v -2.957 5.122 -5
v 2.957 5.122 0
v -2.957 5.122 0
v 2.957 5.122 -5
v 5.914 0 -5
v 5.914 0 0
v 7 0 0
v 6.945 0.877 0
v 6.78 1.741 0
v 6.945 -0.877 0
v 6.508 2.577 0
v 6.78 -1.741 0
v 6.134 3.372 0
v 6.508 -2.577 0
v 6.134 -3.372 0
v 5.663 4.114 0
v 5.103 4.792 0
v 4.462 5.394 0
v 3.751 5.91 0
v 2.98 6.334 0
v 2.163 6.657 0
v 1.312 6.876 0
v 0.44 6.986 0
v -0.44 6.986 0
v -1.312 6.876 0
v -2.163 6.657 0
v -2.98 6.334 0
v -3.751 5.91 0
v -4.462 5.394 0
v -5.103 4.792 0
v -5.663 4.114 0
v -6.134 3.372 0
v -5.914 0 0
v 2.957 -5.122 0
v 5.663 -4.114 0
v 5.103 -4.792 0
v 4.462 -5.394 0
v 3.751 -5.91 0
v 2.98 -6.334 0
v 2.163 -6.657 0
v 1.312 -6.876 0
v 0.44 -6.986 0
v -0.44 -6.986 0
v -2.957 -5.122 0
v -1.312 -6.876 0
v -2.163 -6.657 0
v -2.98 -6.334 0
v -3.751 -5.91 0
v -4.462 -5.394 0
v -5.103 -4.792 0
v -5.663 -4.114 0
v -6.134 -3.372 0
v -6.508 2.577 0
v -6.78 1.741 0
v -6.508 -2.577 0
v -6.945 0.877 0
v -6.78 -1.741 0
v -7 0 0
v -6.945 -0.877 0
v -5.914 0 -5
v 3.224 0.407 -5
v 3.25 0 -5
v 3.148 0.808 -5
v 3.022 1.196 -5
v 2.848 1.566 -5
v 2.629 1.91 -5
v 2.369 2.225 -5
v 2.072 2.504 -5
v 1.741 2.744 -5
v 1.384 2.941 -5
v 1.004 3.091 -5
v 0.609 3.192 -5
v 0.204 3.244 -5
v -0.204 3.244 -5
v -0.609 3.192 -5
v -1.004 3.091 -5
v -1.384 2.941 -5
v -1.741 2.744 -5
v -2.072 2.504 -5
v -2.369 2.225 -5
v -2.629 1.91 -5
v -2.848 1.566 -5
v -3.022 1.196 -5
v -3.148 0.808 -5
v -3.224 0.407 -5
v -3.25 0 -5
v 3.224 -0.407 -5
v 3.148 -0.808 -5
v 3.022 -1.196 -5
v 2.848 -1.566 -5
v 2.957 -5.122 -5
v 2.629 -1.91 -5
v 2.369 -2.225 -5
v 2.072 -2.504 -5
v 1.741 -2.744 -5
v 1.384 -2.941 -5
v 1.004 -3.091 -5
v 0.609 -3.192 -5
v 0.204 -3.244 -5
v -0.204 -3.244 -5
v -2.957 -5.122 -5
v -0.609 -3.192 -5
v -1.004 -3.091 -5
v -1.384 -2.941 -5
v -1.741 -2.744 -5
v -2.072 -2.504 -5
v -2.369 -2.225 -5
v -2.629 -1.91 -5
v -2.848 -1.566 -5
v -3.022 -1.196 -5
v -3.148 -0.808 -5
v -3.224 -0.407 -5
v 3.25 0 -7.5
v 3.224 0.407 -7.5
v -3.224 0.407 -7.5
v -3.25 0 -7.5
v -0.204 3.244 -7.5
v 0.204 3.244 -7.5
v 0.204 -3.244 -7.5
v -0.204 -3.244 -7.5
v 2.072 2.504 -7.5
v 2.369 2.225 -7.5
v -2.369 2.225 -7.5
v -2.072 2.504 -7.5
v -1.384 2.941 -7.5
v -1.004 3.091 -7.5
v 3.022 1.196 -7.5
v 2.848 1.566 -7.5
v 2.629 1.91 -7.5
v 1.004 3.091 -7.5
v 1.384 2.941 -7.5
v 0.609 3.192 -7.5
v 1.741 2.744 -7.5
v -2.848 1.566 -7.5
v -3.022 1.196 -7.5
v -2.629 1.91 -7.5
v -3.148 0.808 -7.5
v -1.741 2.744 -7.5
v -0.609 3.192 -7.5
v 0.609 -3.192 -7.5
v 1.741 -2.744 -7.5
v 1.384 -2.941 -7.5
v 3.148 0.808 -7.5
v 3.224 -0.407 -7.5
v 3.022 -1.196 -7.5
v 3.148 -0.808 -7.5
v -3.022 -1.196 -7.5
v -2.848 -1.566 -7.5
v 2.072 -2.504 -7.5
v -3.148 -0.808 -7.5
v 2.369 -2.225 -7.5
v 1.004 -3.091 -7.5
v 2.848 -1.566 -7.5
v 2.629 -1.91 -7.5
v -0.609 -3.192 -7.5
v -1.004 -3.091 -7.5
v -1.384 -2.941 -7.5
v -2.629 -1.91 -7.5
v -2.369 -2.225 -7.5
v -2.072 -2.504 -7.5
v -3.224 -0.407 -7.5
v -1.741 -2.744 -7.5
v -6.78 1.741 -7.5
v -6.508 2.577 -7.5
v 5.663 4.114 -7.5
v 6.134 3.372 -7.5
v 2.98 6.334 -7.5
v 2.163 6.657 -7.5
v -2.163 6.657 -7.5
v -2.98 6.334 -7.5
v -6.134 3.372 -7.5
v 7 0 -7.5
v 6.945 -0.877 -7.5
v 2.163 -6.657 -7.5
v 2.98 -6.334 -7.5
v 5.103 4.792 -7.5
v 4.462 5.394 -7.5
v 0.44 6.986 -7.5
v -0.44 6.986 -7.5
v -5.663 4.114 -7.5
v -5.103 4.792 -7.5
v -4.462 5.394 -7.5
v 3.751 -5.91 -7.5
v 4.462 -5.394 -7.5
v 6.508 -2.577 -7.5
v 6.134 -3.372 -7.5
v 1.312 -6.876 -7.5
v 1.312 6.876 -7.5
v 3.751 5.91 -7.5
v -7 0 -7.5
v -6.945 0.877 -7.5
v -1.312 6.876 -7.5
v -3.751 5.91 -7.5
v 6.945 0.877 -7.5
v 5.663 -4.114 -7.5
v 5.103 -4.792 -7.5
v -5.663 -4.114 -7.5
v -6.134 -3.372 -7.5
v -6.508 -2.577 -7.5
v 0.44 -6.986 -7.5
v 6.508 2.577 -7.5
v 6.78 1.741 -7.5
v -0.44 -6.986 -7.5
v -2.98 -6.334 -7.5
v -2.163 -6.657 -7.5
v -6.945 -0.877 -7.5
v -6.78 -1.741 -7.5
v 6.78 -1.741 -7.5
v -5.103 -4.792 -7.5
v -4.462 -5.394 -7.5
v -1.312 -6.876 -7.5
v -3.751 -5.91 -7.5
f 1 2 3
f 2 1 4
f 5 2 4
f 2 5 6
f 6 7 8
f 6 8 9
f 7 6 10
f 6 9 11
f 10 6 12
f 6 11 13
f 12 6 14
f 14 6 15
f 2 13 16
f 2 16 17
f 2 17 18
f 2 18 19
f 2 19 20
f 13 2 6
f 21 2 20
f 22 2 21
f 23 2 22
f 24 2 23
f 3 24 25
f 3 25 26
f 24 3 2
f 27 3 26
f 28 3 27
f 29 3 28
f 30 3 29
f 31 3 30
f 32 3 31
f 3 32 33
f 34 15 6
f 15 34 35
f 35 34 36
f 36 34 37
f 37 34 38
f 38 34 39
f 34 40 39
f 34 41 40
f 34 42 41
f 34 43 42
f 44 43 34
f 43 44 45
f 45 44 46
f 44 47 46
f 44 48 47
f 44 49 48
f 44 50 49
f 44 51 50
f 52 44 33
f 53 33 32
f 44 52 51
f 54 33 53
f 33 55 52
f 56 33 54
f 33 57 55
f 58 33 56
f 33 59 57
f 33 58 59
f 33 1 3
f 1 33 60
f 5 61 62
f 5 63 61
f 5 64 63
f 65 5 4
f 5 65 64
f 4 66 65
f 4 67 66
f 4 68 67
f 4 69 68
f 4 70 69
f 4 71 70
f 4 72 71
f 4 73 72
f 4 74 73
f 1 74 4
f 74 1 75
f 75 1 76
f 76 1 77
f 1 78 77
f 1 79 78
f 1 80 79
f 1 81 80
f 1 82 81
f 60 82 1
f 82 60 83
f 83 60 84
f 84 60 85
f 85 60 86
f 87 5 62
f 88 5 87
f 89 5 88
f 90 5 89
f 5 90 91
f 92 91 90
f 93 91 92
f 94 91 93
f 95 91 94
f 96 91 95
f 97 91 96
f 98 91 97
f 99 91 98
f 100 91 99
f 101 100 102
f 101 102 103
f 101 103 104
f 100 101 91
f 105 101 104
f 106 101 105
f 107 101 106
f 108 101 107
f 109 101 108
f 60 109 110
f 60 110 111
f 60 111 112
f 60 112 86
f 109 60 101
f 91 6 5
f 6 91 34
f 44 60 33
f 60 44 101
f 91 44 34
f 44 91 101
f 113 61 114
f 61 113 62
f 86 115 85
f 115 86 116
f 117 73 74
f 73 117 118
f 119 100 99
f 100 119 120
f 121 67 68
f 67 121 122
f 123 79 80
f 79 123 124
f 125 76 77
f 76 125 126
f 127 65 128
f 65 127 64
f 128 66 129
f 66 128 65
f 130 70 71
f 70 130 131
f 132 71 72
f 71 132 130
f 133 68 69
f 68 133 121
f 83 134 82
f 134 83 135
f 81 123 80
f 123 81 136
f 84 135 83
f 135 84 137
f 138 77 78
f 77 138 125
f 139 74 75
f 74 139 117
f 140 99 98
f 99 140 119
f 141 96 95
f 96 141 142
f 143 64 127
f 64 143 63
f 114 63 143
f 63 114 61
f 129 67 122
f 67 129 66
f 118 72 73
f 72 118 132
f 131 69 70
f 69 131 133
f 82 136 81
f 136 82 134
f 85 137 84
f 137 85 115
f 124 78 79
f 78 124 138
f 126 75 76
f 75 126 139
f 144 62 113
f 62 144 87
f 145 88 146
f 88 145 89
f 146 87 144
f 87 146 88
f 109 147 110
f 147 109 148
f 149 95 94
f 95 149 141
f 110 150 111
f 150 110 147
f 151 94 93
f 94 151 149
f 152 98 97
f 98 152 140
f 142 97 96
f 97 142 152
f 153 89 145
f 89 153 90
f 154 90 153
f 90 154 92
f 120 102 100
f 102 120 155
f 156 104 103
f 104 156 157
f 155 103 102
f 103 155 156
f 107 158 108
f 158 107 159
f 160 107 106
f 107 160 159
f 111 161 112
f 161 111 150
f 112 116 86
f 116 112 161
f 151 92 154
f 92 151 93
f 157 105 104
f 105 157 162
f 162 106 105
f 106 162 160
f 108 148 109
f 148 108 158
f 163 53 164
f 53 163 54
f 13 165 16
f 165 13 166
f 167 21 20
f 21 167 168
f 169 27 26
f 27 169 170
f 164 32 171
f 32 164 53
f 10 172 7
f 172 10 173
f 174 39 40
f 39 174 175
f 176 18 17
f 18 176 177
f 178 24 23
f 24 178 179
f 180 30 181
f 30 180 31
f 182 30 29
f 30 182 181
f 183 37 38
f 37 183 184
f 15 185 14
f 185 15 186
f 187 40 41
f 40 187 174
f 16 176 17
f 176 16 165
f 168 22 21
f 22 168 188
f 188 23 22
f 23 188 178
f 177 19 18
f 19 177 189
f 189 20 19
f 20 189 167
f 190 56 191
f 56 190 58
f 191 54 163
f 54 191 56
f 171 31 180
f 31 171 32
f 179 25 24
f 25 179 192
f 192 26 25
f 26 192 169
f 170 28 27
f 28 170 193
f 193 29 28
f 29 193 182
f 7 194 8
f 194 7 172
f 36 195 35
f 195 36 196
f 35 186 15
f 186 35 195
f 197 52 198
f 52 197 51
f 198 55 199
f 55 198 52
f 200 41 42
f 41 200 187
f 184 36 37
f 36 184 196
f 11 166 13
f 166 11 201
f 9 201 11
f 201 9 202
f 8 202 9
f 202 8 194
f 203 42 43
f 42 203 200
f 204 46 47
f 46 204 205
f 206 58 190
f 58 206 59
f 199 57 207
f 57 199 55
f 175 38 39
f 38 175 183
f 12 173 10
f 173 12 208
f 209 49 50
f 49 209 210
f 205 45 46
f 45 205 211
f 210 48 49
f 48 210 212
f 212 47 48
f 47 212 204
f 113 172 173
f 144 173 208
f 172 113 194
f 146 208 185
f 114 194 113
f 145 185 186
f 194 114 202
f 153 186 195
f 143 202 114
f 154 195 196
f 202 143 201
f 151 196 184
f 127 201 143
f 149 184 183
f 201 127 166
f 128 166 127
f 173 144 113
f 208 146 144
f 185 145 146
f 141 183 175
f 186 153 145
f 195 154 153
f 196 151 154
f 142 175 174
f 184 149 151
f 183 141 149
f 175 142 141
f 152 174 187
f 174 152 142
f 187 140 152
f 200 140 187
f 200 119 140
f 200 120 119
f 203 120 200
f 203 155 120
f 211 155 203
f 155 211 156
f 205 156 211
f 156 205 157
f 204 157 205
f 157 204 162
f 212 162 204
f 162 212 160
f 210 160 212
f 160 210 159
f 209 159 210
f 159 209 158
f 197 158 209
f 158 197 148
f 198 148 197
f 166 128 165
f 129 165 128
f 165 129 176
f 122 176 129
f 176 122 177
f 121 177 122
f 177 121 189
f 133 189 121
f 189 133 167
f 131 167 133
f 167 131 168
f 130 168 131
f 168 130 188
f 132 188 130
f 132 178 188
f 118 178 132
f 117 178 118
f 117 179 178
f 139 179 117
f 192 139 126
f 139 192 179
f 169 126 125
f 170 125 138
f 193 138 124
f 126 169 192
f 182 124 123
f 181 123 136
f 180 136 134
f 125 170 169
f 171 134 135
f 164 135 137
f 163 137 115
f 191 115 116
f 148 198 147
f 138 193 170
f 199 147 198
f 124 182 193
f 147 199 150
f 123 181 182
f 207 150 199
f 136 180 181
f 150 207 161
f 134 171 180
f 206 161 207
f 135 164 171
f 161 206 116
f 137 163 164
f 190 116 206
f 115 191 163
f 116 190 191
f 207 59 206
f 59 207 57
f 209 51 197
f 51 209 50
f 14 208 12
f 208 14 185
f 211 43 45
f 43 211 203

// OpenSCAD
$fn = 50;

difference() {
	union() {
		translate(v = [0, 0, -7.5]) {
			cylinder(h = 7.5, r = 7.0);
		}
	}
	union() {
		translate(v = [0, 0, 0]) {
			rotate(a = [0, 0, 0]) {
				difference() {
					union() {
						translate(v = [0, 0, -5]) {
							linear_extrude(height = 5) {
								polygon(points = [[5.914249999999999, 0.0], [2.957125, 5.1218907443321156], [-2.9571249999999982, 5.1218907443321156], [-5.914249999999999, 7.242867331857232e-16], [-2.9571250000000022, -5.121890744332115], [2.9571249999999956, -5.121890744332118]]);
							}
						}
					}
					union();
				}
			}
		}
		#translate(v = [0, 0, -100.0]) {
			cylinder(h = 200, r = 3.25);
		}
	}
}
